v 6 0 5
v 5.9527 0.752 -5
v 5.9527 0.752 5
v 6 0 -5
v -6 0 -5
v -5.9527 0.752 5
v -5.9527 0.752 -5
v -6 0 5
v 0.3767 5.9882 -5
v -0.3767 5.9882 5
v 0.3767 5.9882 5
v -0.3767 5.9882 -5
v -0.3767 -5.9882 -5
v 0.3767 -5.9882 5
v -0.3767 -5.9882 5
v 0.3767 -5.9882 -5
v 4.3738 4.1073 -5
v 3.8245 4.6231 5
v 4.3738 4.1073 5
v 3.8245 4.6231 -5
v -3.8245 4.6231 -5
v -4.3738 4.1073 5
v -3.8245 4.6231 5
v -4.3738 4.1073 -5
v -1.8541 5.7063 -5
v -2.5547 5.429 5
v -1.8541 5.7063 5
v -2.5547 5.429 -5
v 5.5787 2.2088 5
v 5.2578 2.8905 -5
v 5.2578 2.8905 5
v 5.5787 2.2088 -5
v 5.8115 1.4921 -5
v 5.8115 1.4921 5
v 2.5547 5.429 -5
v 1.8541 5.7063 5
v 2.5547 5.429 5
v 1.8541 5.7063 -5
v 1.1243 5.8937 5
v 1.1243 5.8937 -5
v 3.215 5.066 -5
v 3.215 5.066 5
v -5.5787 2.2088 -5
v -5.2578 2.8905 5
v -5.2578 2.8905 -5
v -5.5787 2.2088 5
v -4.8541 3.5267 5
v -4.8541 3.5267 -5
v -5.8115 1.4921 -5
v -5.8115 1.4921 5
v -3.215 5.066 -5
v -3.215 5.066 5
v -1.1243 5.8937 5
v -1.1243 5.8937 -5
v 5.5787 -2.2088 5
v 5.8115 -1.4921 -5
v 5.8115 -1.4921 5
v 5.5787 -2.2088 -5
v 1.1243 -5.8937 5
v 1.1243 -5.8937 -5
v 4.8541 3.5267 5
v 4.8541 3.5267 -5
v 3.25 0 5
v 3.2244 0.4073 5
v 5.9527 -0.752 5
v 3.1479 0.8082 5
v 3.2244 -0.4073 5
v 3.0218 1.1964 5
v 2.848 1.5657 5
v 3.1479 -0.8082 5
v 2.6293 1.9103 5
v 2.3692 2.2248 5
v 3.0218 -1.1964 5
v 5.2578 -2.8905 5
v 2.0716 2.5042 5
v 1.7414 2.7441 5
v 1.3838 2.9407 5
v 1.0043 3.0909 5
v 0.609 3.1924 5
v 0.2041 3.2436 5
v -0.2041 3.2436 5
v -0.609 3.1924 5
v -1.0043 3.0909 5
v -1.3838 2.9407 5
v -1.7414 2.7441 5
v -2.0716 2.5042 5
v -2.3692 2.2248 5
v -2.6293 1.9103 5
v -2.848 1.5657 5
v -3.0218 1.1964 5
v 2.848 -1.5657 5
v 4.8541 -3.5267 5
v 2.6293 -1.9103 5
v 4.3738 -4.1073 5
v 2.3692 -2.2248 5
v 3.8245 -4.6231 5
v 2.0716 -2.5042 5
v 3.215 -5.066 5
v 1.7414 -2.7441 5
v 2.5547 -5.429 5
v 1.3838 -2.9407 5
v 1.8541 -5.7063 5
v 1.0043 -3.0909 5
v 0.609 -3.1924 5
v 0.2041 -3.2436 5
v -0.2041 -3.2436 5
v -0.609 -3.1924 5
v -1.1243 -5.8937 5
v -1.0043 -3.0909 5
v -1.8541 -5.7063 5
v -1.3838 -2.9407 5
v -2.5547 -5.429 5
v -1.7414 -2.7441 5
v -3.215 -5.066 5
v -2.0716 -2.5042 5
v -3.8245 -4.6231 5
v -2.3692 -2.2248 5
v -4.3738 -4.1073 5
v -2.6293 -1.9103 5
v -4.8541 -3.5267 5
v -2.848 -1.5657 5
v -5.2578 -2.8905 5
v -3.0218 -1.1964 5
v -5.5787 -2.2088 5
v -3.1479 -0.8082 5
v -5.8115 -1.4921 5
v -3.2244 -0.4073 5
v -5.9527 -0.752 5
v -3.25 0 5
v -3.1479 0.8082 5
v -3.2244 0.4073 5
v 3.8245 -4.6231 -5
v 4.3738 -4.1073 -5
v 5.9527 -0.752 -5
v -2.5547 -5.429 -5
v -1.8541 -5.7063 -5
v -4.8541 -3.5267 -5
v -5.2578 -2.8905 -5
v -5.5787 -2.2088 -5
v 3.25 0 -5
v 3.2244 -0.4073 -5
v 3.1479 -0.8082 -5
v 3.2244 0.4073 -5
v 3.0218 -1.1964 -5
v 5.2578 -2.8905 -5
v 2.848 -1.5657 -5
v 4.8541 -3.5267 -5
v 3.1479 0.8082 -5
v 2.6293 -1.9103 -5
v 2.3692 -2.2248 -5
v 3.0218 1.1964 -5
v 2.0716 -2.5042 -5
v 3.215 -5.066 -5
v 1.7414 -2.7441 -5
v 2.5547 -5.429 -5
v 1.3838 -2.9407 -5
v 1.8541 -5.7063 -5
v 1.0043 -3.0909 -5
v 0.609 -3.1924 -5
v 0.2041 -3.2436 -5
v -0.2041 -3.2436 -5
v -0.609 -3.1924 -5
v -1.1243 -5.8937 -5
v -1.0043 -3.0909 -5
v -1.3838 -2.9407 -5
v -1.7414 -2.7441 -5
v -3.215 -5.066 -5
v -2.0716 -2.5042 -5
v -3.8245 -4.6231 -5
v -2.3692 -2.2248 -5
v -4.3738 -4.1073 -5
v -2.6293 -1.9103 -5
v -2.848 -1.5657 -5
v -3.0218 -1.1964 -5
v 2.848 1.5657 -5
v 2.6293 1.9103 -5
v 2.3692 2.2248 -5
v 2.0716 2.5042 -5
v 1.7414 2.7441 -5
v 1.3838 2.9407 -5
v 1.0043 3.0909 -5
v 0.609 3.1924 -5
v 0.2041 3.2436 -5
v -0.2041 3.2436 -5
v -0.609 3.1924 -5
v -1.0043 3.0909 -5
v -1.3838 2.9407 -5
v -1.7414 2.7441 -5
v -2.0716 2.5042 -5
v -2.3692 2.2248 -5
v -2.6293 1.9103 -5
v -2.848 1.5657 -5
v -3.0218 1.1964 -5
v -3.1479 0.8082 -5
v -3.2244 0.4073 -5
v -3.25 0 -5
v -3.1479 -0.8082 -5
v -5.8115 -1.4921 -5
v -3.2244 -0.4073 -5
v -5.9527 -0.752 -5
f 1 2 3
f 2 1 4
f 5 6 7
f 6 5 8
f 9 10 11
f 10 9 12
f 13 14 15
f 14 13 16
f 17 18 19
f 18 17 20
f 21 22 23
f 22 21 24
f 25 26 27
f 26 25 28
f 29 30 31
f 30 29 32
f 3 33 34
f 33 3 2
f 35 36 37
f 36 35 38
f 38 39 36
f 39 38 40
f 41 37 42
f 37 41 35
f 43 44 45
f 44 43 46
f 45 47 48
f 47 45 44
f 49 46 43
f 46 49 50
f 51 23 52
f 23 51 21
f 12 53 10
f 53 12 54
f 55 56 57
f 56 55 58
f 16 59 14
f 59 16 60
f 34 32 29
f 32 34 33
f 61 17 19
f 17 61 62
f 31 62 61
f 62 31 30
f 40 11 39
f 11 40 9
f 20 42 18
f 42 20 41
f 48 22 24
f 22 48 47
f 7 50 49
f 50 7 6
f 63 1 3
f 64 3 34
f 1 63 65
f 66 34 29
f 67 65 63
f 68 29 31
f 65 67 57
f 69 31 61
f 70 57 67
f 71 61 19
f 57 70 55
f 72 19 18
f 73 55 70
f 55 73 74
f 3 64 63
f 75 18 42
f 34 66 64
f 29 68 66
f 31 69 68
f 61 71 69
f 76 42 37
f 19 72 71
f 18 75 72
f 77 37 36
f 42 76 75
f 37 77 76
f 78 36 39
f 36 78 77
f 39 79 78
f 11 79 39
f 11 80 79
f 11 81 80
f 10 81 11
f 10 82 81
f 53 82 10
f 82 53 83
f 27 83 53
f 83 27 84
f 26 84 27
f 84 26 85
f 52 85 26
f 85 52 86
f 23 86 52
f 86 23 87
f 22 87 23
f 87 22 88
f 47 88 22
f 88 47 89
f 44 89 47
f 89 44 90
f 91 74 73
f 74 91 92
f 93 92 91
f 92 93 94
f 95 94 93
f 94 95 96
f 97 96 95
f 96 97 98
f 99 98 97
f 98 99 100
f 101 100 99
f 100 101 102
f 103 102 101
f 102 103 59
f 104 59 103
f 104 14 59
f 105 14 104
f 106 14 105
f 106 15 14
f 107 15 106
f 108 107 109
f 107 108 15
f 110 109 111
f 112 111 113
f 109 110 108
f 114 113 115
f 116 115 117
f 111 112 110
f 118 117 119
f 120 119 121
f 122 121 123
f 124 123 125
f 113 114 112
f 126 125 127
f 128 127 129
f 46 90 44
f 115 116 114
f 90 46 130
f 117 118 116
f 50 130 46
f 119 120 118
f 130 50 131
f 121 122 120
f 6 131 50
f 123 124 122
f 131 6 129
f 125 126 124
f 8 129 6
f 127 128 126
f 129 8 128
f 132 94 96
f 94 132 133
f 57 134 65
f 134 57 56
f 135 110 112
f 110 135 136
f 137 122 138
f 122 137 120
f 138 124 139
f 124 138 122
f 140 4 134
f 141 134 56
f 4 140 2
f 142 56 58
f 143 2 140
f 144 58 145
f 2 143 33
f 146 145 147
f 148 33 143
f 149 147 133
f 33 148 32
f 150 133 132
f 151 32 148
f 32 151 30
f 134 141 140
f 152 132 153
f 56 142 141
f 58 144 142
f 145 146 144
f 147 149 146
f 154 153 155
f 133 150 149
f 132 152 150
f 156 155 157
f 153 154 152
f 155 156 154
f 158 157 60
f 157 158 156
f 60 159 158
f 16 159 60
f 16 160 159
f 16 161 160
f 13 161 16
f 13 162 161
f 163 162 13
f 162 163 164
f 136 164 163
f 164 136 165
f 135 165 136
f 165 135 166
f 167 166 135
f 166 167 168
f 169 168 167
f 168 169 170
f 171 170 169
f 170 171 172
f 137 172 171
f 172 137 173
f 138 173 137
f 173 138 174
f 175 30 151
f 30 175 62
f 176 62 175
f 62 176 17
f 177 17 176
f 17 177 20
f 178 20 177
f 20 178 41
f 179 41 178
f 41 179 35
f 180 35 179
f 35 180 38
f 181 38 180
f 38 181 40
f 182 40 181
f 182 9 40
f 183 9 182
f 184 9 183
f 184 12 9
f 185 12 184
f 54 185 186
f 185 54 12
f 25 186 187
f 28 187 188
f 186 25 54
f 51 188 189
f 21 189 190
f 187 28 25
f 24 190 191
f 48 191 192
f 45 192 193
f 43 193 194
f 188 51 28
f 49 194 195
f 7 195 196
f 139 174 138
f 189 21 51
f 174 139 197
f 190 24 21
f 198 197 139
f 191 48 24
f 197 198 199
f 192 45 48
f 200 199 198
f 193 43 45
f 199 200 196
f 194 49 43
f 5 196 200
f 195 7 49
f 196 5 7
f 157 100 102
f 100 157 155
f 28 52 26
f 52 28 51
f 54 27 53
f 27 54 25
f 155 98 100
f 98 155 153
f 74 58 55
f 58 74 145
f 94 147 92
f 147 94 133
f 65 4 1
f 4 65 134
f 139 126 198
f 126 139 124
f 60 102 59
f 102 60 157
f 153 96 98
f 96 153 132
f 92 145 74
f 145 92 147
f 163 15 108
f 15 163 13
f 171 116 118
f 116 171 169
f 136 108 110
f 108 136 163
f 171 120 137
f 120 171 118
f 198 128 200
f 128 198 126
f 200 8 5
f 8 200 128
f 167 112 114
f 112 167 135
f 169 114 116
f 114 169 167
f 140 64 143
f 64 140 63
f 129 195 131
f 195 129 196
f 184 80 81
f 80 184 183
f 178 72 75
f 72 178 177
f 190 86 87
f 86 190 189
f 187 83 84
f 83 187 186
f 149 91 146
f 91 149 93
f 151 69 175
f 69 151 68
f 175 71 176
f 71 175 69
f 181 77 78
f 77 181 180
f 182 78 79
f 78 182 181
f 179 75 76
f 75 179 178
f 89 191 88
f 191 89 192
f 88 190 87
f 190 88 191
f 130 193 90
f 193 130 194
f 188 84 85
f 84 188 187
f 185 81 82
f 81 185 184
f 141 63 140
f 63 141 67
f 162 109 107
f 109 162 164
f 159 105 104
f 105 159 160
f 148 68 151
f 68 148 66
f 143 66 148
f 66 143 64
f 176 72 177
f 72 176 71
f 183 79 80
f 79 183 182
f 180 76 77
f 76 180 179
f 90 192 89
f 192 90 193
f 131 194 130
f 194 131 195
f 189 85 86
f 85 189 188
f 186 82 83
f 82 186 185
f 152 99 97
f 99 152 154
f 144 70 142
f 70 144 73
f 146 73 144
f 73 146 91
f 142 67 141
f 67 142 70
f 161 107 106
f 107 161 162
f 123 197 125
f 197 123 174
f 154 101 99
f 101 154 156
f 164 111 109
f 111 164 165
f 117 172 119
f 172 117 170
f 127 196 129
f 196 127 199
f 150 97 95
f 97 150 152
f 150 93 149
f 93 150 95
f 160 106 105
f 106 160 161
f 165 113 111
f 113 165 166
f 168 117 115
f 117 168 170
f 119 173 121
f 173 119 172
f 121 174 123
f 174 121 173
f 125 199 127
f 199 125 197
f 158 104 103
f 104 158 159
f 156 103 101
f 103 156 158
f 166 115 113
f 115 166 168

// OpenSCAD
$fn = 50;


difference() {
	union() {
		translate(v = [0, 0, -5.0000000000]) {
			cylinder(h = 10, r = 6.0000000000);
		}
	}
	union() {
		translate(v = [0, 0, -100.0000000000]) {
			cylinder(h = 200, r = 3.2500000000);
		}
	}
}
